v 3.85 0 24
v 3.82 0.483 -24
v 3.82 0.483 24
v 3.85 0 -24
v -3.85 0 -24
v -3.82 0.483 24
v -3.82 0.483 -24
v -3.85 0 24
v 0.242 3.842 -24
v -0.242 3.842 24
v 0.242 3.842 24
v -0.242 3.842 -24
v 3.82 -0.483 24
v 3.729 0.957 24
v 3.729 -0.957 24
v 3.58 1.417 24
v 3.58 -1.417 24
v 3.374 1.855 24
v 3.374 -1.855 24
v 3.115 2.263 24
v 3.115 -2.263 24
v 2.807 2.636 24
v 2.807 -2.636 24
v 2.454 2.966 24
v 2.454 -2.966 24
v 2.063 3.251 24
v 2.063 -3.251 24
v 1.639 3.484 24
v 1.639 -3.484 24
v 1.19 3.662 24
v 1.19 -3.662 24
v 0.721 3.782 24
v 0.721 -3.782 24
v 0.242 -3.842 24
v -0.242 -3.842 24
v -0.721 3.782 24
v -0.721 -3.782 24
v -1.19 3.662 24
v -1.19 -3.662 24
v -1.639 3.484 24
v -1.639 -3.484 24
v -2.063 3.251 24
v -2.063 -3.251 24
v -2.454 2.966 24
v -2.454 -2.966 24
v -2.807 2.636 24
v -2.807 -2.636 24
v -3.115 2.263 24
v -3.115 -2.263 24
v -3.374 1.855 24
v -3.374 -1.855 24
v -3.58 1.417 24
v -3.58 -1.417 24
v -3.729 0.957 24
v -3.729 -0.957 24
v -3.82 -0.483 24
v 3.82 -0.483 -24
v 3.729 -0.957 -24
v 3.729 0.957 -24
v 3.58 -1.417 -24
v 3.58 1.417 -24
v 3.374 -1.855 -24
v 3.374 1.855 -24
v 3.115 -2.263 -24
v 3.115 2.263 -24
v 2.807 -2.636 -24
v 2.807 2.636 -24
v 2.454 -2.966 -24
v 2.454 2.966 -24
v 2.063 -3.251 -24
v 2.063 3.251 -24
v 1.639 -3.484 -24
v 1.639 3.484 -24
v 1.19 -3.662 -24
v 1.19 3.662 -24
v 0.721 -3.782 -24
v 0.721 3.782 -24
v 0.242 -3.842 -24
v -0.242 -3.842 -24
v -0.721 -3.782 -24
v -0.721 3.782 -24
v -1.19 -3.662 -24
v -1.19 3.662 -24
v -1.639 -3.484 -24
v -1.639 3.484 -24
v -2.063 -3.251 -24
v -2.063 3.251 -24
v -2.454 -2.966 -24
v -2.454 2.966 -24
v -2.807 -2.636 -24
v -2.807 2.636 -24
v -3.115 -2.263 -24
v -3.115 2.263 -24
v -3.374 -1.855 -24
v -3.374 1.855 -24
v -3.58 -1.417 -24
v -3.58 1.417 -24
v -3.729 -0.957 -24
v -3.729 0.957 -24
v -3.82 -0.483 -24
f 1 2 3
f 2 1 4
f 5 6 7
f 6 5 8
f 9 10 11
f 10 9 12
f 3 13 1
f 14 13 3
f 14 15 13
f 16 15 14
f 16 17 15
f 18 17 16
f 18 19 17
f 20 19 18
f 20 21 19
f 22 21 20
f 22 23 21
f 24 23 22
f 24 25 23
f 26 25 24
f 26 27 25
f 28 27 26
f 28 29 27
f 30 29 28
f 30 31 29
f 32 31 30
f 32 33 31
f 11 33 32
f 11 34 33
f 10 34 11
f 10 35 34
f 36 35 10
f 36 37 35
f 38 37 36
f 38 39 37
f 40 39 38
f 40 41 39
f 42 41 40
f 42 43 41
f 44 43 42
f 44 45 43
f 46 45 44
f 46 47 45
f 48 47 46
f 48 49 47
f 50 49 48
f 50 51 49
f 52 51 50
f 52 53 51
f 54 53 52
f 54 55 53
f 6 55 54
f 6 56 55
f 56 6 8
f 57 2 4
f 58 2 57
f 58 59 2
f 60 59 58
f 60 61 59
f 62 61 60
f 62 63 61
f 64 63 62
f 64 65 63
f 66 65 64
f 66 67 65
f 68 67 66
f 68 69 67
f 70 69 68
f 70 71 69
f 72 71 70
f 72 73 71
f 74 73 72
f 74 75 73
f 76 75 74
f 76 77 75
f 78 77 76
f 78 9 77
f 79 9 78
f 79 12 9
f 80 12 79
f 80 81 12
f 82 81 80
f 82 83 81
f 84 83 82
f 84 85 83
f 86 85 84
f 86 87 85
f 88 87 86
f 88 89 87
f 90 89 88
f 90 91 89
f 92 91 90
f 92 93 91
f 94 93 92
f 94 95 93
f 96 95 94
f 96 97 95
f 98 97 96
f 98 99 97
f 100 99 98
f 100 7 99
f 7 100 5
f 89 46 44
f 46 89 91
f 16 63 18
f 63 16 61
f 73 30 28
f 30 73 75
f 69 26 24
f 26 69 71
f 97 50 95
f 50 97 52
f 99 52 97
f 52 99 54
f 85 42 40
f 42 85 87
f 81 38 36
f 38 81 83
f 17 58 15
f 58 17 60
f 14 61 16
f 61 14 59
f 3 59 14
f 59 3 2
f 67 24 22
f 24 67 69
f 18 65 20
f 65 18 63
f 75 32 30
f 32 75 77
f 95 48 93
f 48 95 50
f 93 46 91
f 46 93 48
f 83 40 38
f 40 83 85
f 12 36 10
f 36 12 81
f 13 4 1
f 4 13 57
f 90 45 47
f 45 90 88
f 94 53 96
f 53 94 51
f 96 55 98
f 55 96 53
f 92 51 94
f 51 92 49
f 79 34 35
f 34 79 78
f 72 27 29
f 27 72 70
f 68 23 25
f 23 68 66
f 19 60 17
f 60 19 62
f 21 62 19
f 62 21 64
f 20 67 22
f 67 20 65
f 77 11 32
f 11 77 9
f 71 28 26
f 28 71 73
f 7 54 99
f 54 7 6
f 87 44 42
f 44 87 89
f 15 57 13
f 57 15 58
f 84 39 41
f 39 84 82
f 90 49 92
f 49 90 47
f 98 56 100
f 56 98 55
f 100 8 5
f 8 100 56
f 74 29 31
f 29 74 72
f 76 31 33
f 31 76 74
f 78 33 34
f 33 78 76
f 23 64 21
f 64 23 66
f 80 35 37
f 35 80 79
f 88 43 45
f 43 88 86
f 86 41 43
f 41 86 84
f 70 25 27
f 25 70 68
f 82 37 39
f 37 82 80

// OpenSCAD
$fn = 50;


difference() {
	union() {
		translate(v = [0, 0, -24.0000000000]) {
			cylinder(h = 48, r = 3.8500000000);
		}
	}
	union() {
		translate(v = [0, 0, -100.0000000000]) {
			cylinder(h = 200, r = 0);
		}
	}
}
